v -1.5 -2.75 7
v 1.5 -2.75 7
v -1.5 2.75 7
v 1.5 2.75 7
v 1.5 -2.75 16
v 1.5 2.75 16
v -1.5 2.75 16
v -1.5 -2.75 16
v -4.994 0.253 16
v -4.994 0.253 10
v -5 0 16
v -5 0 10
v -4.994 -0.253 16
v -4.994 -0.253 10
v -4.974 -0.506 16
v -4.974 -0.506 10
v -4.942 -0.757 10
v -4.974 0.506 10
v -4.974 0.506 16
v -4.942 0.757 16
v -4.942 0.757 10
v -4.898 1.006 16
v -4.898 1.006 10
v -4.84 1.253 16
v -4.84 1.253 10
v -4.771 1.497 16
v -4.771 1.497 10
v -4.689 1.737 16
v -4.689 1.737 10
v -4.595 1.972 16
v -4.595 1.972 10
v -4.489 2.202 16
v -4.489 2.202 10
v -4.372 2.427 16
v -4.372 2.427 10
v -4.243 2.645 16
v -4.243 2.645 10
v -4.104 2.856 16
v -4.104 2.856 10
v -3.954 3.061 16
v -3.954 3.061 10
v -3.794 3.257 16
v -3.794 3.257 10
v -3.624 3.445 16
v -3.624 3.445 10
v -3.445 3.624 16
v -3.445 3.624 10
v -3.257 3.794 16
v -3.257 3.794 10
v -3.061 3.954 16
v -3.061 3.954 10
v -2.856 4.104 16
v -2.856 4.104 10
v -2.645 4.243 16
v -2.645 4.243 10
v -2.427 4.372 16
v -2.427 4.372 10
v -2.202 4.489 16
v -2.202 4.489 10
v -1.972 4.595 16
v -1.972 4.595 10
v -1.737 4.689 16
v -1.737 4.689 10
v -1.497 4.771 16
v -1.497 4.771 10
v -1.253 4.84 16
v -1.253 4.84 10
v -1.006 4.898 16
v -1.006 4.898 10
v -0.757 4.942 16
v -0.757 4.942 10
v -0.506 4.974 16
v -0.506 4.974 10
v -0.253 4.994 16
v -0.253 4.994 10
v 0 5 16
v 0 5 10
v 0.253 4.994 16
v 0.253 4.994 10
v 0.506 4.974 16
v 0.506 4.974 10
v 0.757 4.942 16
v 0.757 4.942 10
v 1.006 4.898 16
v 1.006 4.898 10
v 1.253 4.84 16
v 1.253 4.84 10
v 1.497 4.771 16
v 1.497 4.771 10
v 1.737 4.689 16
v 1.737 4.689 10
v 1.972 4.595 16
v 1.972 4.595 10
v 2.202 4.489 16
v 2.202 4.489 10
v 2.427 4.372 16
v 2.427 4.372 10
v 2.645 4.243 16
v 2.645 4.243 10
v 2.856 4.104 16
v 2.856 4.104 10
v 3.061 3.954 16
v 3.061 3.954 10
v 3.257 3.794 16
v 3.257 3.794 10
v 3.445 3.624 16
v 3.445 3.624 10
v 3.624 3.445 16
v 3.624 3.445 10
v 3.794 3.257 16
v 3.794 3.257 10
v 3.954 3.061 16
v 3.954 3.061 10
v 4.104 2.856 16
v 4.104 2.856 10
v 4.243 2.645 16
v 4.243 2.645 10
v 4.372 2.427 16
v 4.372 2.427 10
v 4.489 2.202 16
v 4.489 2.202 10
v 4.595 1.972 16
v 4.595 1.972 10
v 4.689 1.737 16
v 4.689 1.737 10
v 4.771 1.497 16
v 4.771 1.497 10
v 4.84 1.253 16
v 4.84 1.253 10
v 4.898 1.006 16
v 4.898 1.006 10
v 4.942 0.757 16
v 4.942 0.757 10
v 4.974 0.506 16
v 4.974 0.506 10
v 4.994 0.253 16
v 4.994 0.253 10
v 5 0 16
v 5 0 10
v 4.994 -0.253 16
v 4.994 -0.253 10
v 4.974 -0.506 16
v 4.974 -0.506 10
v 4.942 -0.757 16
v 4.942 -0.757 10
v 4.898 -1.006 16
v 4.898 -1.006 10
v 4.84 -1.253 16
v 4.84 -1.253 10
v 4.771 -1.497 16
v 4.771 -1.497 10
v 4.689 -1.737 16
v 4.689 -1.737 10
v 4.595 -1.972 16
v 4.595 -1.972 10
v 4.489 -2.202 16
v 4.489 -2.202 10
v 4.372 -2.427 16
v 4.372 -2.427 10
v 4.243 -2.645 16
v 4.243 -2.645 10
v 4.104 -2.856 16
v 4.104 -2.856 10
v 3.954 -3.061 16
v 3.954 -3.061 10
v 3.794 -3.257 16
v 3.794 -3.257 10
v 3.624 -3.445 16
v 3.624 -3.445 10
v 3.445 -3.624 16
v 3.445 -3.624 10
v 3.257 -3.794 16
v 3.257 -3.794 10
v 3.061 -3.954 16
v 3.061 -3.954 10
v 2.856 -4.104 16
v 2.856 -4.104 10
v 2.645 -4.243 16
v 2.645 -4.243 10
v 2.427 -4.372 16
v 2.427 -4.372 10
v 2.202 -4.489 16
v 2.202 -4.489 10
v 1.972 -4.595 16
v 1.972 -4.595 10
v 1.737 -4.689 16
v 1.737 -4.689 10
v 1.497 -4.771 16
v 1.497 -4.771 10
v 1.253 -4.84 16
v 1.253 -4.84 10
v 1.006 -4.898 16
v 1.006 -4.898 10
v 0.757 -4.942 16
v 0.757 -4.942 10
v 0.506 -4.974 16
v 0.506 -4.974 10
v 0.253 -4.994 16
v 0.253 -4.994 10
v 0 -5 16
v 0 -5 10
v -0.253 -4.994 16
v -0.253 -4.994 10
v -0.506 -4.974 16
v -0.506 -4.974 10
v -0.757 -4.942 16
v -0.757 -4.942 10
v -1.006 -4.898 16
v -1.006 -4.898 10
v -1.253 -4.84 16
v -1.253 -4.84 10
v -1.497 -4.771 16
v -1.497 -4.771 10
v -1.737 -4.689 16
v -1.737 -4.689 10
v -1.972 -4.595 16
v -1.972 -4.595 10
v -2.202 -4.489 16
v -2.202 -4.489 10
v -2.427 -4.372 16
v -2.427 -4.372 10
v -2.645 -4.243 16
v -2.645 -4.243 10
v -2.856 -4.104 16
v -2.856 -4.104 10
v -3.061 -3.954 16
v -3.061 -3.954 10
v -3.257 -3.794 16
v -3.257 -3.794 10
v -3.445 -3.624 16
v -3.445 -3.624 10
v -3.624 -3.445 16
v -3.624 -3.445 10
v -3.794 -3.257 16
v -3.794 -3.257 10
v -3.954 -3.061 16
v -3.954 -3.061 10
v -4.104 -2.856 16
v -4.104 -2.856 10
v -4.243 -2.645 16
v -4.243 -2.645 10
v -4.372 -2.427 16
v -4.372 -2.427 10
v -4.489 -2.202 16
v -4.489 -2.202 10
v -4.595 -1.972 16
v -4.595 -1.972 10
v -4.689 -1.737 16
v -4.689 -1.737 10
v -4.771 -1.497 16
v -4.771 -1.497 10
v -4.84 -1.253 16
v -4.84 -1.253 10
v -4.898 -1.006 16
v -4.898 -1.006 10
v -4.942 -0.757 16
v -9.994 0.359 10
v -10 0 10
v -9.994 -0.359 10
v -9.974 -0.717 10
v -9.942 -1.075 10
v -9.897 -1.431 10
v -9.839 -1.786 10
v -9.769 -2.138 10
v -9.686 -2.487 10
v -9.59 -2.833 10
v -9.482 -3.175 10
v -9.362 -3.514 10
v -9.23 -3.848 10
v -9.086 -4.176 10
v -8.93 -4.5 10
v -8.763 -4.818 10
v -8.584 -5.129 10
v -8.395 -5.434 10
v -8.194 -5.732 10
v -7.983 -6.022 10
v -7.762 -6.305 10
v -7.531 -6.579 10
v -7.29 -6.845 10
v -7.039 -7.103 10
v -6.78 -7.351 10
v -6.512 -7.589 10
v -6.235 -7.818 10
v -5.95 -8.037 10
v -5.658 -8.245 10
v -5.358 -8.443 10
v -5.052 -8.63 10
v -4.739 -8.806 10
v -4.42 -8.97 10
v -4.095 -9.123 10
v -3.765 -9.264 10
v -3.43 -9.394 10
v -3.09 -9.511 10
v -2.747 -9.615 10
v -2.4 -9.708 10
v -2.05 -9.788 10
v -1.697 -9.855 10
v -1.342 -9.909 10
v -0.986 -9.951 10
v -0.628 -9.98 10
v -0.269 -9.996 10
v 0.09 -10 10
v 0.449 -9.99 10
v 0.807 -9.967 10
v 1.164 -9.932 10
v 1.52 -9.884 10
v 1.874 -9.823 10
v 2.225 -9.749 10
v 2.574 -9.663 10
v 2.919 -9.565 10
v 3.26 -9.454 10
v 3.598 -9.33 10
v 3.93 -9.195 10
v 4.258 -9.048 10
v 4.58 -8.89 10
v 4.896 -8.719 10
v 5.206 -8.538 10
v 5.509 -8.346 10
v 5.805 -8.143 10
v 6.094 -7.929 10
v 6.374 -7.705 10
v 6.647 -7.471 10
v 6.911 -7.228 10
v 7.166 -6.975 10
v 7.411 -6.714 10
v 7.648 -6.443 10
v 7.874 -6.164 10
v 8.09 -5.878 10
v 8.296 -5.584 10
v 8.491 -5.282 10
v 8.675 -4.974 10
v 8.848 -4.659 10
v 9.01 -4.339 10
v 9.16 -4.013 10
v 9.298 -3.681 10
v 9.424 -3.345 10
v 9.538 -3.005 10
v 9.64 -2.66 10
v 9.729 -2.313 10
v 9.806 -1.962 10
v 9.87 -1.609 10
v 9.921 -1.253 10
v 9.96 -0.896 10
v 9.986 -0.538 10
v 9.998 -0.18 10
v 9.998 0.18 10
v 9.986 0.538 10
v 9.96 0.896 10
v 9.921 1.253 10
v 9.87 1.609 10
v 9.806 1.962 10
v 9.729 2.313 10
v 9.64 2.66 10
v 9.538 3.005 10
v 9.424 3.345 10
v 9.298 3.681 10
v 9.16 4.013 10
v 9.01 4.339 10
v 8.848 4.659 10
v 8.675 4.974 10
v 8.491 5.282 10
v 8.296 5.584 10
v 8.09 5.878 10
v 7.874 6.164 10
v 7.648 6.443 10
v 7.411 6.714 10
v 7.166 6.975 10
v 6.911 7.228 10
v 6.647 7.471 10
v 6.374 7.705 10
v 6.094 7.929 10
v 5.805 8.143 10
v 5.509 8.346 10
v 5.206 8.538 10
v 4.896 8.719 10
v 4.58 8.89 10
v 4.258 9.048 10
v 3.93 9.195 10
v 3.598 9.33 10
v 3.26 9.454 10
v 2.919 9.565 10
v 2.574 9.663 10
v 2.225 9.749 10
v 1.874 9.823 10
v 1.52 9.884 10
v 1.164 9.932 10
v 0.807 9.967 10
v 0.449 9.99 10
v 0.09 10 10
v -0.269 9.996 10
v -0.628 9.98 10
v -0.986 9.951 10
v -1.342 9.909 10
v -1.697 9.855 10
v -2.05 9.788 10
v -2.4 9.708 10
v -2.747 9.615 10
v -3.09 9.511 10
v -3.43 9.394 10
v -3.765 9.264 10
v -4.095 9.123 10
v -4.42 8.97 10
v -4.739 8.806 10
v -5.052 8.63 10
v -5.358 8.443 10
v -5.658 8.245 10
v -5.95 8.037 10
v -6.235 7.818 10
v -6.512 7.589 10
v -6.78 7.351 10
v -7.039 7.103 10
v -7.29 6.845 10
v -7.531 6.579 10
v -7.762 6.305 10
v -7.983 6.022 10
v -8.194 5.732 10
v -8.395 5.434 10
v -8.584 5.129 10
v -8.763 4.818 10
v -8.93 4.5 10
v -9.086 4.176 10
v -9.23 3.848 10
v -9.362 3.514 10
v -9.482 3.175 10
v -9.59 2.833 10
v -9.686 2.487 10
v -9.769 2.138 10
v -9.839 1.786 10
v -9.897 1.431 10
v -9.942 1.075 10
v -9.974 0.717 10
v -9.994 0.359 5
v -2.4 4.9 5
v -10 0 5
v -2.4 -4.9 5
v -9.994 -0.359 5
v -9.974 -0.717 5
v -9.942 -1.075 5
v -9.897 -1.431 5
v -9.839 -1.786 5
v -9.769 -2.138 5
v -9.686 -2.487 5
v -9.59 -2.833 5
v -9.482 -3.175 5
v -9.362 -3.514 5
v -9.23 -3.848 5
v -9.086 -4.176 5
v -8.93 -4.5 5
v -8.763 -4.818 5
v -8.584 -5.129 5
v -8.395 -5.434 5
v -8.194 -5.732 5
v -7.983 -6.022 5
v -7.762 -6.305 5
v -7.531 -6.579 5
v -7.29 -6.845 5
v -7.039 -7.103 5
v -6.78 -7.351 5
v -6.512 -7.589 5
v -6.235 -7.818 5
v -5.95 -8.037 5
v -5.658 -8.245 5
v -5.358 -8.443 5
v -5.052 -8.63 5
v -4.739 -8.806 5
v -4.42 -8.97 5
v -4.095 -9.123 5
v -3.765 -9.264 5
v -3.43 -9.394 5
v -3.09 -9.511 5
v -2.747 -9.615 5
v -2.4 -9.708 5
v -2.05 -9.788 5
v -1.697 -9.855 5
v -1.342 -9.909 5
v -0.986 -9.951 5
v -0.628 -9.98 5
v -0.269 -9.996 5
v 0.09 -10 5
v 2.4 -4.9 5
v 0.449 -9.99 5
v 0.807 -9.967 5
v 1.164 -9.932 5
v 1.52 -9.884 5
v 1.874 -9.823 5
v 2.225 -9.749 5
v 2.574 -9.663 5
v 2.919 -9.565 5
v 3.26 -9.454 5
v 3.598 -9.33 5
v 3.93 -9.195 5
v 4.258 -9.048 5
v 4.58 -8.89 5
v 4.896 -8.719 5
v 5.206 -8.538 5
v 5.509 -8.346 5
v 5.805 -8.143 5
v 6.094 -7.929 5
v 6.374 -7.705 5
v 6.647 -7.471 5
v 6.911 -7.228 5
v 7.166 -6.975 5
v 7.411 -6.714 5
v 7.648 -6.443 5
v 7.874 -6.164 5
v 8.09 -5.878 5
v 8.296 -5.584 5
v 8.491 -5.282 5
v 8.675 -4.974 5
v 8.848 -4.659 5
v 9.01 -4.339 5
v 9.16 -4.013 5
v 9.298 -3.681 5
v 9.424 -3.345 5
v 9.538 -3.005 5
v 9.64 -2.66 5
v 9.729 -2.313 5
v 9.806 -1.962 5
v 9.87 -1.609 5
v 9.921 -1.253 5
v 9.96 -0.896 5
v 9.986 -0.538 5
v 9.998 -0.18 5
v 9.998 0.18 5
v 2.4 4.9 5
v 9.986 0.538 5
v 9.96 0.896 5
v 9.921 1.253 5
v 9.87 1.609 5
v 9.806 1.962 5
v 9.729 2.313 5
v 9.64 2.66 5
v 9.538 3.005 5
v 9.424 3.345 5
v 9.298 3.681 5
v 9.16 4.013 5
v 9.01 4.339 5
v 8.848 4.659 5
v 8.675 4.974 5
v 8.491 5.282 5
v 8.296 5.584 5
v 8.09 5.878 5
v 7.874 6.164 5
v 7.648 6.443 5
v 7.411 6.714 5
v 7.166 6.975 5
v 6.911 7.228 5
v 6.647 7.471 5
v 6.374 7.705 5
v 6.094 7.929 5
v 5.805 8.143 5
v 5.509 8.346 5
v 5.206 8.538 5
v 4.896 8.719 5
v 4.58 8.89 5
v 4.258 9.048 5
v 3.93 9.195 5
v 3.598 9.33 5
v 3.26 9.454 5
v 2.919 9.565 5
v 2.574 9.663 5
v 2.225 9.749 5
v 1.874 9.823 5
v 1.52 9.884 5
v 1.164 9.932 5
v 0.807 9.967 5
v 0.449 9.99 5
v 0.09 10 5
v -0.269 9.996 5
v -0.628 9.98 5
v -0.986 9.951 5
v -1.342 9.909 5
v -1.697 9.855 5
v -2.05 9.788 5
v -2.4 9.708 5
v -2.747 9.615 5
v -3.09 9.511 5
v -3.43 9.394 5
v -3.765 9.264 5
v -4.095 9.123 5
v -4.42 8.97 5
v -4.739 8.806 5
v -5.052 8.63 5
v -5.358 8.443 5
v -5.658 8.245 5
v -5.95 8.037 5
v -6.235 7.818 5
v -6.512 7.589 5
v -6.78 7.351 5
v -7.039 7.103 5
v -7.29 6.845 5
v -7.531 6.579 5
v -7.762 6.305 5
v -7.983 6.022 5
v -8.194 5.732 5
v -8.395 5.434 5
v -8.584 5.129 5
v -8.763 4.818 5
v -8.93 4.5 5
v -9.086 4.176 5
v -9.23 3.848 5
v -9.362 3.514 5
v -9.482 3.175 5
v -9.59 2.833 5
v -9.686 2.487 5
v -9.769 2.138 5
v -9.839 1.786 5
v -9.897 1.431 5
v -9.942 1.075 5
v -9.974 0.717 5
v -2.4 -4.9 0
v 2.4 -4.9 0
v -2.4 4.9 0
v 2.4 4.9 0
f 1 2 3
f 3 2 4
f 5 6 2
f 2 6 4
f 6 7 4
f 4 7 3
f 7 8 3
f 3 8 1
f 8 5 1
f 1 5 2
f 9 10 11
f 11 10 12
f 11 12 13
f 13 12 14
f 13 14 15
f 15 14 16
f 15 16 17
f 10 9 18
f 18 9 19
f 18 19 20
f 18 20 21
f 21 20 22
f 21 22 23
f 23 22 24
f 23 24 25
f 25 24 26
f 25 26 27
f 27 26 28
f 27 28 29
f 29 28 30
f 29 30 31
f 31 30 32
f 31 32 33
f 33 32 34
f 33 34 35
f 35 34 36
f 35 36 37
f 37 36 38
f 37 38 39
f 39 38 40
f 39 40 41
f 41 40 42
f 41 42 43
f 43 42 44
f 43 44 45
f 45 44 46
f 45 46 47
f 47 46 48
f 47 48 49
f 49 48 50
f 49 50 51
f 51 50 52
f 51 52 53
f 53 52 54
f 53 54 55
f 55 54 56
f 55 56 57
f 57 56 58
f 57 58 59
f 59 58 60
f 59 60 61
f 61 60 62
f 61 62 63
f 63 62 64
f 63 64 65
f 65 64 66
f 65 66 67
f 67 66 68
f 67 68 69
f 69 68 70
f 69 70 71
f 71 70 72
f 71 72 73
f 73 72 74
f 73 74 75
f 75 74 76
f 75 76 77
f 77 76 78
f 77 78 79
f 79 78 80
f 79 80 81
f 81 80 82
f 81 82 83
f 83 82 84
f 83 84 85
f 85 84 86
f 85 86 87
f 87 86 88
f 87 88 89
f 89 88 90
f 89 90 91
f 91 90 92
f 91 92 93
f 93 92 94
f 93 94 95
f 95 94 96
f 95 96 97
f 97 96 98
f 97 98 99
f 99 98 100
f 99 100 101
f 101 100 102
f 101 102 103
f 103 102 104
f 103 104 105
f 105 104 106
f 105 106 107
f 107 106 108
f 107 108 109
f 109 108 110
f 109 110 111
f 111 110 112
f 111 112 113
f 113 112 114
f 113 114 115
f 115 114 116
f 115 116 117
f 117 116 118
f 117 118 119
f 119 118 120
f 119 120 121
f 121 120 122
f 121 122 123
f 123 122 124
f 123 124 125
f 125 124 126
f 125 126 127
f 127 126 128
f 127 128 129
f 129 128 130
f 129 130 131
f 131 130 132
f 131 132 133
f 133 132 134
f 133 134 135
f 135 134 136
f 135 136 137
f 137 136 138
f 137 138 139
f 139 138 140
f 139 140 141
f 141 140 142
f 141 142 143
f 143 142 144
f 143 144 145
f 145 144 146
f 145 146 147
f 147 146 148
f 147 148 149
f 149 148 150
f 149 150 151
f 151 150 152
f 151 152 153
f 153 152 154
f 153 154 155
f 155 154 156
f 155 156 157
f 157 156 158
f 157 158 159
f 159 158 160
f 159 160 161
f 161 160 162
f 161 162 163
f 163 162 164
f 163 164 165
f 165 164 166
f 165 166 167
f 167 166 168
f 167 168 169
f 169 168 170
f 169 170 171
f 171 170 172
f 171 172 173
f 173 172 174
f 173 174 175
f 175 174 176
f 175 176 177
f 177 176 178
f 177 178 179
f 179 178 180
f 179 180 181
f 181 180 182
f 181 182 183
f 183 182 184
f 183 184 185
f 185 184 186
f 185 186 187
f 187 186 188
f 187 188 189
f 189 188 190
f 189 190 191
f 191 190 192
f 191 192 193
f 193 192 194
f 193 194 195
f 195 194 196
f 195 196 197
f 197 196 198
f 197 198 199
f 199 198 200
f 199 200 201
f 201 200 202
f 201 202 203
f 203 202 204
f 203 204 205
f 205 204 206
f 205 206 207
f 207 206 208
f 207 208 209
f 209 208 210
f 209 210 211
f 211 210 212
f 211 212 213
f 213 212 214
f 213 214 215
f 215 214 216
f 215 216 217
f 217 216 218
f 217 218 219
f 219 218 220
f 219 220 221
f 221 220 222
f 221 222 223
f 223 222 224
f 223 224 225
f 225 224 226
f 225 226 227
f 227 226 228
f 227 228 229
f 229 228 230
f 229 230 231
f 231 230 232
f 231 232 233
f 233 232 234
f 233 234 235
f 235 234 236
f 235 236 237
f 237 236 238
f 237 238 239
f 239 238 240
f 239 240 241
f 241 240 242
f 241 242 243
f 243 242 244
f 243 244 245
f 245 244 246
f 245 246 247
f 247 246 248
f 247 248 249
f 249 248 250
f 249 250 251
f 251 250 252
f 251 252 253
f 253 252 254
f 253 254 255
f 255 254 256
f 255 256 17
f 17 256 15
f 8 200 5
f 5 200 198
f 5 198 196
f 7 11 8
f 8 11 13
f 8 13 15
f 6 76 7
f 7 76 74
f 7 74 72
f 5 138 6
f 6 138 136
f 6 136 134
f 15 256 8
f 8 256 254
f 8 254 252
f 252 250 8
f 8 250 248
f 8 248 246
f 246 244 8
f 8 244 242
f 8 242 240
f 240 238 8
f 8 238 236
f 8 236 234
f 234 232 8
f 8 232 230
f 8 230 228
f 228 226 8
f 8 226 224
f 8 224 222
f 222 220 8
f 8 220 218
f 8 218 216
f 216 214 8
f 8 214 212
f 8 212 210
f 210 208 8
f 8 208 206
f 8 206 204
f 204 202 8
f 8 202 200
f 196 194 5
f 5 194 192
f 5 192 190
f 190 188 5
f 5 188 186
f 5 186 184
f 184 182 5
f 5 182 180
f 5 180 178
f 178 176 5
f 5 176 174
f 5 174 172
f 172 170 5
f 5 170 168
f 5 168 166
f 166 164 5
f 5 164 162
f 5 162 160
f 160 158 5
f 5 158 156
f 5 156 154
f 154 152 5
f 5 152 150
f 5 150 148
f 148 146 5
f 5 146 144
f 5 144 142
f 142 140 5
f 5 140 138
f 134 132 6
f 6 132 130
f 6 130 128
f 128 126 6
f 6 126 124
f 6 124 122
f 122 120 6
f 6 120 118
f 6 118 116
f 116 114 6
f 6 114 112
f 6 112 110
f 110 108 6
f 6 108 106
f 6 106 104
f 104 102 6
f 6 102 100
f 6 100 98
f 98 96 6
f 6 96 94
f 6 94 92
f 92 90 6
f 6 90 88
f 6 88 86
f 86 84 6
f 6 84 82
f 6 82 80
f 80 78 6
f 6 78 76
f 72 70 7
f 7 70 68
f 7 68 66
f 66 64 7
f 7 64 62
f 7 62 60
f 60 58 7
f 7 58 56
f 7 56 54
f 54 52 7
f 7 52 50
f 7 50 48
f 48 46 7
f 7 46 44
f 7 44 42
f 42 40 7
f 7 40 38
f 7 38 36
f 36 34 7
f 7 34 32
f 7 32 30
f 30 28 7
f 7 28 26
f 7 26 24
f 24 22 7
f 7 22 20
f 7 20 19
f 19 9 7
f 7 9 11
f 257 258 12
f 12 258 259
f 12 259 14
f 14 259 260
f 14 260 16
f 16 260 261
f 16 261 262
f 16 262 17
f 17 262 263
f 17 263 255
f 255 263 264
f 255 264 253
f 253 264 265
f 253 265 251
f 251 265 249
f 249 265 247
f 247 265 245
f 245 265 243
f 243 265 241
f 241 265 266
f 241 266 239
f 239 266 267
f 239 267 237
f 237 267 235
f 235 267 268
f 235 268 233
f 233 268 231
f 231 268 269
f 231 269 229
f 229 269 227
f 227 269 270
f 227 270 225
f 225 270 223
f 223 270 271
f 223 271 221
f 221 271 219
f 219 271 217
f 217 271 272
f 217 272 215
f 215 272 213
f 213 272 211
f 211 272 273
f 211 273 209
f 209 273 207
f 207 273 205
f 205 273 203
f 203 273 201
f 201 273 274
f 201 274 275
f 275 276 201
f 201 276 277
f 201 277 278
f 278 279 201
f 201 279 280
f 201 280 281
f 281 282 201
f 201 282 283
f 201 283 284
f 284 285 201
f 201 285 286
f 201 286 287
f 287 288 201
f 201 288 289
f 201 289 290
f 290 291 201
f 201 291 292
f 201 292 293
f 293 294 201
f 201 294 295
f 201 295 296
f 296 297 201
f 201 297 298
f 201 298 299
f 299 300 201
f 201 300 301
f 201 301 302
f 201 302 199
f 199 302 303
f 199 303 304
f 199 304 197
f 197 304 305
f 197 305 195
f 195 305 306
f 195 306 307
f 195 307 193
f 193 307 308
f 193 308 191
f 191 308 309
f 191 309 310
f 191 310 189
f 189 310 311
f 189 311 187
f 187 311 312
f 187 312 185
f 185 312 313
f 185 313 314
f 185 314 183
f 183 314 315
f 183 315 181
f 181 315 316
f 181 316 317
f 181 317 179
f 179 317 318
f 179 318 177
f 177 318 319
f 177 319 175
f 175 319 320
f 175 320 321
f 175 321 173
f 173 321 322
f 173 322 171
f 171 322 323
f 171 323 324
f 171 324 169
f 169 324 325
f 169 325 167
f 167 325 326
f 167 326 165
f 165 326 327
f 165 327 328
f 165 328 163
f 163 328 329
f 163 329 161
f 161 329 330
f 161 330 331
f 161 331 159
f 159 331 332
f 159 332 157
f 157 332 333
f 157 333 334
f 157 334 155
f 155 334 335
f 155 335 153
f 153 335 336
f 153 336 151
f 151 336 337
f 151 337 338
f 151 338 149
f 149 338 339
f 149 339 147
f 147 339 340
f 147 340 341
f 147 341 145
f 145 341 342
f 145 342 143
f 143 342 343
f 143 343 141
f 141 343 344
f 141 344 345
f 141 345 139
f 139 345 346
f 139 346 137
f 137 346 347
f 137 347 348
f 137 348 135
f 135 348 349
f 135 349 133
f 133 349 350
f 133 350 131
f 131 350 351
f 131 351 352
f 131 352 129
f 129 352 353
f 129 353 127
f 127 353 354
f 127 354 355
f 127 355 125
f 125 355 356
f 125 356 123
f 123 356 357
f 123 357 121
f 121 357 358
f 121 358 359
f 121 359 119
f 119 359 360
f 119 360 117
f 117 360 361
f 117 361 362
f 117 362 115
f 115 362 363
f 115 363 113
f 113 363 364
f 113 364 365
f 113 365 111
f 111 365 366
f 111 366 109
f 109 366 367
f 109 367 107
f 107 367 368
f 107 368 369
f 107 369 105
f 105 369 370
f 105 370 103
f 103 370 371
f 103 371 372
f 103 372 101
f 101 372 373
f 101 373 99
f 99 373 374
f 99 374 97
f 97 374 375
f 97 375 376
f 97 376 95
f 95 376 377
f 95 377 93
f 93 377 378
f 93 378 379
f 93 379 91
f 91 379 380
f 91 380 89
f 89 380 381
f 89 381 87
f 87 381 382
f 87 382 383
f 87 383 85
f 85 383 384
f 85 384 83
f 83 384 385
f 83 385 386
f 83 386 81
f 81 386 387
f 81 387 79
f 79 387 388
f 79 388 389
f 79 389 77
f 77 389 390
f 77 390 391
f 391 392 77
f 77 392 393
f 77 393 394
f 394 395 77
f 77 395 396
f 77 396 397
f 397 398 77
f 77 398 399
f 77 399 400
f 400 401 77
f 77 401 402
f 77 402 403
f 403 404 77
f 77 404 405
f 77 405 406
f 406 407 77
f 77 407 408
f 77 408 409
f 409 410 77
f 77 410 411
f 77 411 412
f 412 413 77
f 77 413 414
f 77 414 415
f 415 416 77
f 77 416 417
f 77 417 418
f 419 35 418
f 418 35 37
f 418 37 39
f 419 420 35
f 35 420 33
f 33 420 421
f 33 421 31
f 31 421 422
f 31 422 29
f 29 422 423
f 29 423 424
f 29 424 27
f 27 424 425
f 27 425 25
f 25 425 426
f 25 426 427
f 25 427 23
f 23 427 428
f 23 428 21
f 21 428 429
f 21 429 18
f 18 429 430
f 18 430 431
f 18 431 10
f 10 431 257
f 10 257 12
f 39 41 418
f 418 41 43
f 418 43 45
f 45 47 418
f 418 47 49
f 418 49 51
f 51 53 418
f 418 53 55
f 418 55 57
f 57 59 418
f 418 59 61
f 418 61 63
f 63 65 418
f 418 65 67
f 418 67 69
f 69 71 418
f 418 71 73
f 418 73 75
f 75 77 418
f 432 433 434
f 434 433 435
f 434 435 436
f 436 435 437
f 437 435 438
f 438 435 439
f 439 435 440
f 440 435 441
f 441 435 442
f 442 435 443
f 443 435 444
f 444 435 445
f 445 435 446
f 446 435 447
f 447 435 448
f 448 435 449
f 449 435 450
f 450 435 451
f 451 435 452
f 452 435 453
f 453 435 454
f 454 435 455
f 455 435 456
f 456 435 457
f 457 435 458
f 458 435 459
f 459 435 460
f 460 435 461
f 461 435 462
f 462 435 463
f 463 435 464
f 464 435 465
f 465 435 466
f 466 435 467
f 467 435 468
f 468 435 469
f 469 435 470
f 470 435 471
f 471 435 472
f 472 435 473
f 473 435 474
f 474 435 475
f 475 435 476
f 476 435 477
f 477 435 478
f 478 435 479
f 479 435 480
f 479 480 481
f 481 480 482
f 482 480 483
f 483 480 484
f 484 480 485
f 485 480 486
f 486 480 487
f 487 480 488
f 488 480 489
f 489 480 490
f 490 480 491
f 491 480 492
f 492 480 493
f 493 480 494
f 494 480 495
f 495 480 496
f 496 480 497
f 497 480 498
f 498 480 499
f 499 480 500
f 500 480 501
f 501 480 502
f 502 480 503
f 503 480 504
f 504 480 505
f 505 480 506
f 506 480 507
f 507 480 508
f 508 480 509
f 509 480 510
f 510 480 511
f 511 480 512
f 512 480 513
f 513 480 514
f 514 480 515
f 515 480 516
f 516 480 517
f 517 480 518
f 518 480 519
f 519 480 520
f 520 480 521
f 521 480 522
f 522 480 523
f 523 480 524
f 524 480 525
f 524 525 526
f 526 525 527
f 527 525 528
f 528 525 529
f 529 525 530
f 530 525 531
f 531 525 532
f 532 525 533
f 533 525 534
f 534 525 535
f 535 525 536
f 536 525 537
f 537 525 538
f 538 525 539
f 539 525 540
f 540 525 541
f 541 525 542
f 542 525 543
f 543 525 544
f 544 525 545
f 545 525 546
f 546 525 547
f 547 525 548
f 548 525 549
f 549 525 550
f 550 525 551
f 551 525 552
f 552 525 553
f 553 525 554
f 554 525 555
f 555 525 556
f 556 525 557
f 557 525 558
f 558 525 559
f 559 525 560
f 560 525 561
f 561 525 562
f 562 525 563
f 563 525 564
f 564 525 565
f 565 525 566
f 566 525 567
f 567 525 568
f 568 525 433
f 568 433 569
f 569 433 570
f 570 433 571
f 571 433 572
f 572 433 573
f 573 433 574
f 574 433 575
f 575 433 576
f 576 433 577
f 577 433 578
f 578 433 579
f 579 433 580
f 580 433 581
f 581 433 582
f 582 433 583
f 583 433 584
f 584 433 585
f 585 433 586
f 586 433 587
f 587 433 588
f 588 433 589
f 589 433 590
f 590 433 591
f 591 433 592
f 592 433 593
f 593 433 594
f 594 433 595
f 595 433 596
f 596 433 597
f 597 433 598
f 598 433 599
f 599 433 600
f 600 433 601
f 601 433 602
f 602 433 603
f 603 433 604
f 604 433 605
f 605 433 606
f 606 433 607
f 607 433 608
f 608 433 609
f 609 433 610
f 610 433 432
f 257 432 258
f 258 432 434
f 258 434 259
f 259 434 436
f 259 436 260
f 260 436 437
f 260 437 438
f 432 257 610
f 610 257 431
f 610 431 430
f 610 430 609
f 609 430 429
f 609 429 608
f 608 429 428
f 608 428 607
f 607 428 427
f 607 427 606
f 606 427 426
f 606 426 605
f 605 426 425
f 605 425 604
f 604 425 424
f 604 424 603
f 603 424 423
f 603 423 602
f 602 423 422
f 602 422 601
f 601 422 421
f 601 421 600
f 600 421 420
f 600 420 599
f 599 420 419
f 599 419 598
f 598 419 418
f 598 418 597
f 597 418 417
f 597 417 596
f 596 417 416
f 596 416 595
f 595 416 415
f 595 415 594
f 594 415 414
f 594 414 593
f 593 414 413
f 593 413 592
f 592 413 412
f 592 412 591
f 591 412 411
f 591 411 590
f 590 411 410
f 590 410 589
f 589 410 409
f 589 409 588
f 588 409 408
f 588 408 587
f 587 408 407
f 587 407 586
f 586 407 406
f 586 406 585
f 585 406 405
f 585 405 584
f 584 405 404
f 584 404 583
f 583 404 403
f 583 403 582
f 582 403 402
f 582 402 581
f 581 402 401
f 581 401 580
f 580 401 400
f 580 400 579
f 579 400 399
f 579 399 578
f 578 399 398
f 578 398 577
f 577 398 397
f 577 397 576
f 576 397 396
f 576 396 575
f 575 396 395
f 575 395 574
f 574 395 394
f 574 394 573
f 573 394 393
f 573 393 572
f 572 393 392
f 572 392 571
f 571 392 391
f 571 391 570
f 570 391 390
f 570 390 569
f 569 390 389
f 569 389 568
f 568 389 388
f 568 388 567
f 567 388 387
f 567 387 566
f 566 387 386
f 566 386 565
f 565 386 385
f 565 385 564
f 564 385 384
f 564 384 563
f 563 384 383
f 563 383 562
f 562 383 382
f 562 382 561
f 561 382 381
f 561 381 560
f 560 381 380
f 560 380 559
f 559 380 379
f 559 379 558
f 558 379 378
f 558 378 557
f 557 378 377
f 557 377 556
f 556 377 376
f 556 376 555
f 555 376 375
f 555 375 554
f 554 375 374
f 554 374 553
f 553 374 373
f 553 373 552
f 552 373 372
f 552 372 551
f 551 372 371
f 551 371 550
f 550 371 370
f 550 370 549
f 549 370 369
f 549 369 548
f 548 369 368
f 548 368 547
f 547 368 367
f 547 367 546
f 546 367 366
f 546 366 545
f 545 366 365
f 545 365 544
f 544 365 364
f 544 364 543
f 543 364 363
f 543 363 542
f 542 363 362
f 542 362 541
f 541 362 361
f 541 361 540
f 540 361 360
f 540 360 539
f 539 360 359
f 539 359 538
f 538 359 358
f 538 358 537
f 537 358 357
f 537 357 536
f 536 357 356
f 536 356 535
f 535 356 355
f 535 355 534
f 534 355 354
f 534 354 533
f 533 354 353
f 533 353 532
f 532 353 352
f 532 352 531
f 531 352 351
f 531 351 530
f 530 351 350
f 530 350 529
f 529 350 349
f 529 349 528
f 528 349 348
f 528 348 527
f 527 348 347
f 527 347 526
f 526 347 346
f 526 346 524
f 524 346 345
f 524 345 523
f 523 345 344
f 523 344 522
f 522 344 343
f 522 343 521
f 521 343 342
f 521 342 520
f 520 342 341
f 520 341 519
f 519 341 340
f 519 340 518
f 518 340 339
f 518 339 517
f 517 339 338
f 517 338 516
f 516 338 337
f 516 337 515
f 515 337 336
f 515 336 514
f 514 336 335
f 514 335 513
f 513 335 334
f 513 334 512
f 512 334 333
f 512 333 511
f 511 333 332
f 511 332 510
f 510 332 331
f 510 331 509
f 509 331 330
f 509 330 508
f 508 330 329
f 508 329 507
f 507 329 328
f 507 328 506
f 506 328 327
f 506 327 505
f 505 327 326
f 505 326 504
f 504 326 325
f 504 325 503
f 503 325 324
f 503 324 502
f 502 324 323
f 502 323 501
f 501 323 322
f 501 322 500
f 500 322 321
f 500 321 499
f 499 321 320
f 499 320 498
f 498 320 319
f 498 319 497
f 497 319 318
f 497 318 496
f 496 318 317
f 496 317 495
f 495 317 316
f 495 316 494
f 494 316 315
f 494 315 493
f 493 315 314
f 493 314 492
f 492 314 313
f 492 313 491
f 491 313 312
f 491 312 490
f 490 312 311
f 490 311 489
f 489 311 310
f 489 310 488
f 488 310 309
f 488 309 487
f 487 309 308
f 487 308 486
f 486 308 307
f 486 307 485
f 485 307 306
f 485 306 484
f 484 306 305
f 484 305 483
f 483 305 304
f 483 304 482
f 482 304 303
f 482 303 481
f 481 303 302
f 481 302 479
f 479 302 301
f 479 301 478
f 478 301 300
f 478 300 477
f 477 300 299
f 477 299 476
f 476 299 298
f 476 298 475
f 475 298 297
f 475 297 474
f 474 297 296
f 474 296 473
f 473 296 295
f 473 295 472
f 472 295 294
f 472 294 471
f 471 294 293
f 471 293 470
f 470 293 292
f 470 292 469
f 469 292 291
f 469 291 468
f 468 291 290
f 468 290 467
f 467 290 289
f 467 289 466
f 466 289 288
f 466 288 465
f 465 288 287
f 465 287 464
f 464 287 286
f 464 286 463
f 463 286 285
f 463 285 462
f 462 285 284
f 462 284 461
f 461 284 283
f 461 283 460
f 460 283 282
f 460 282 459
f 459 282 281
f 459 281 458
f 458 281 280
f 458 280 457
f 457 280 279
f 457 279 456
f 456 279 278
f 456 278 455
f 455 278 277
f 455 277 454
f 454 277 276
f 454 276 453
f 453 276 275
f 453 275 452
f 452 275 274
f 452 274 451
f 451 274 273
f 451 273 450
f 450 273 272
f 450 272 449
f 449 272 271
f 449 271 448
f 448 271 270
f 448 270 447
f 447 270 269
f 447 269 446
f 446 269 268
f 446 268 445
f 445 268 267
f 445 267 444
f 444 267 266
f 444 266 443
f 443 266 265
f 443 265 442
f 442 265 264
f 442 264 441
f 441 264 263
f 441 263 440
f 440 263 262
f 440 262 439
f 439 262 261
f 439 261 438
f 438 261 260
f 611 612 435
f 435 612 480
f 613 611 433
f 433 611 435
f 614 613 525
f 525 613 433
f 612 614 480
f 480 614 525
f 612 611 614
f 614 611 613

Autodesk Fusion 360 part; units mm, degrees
sketch "Sketch1" plane through (0, 0, 0) normal (0, 0, 1) x (1, 0, 0)
  line L0 (2.4, 4.9) -> (-2.4, 4.9)
  line L1 (-2.4, 4.9) -> (-2.4, -4.9)
  line L2 (-2.4, -4.9) -> (2.4, -4.9)
  line L3 (2.4, -4.9) -> (2.4, 4.9)
  line L4 (2.4, 4.9) -> (-2.4, -4.9) construction
  line L5 (-2.4, 4.9) -> (2.4, -4.9) construction
  dimension "d1" = 4.8
  dimension "d2" = 9.8
extrude "Extrude1" add sketch "Sketch1" along normal blind 5
sketch "Sketch2" plane through (0, 0, 5) normal (0, 0, 1) x (1, 0, 0)
  line L0 (2.4, -4.9) -> (2.4, 4.9)
  line L1 (2.4, 4.9) -> (-2.4, 4.9)
  line L2 (-2.4, 4.9) -> (-2.4, -4.9)
  line L3 (-2.4, -4.9) -> (2.4, -4.9)
  circle A0 centre (0, 0) radius 10
  dimension "d5" = 20
extrude "Extrude2" add sketch "Sketch2" along normal blind 5 contours L0 L1 L2 L3 | A0
sketch "Sketch3" plane through (0, 0, 10) normal (0, 0, 1) x (1, 0, 0)
  circle A0 centre (0, 0) radius 10
  line L0 (-1.5, 2.75) -> (1.5, 2.75)
  line L1 (1.5, 2.75) -> (1.5, -2.75)
  line L2 (1.5, -2.75) -> (-1.5, -2.75)
  line L3 (-1.5, -2.75) -> (-1.5, 2.75)
  line L4 (-1.5, 2.75) -> (1.5, -2.75) construction
  line L5 (1.5, 2.75) -> (-1.5, -2.75) construction
  circle A1 centre (0, 0) radius 5
  dimension "d8" = 5.5
  dimension "d9" = 3
  dimension "d10" = 10
extrude "Extrude3" add sketch "Sketch3" along normal blind 6 contours A1
extrude "Extrude4" cut sketch "Sketch3" against normal blind 3 contours L0 L1 L2 L3
